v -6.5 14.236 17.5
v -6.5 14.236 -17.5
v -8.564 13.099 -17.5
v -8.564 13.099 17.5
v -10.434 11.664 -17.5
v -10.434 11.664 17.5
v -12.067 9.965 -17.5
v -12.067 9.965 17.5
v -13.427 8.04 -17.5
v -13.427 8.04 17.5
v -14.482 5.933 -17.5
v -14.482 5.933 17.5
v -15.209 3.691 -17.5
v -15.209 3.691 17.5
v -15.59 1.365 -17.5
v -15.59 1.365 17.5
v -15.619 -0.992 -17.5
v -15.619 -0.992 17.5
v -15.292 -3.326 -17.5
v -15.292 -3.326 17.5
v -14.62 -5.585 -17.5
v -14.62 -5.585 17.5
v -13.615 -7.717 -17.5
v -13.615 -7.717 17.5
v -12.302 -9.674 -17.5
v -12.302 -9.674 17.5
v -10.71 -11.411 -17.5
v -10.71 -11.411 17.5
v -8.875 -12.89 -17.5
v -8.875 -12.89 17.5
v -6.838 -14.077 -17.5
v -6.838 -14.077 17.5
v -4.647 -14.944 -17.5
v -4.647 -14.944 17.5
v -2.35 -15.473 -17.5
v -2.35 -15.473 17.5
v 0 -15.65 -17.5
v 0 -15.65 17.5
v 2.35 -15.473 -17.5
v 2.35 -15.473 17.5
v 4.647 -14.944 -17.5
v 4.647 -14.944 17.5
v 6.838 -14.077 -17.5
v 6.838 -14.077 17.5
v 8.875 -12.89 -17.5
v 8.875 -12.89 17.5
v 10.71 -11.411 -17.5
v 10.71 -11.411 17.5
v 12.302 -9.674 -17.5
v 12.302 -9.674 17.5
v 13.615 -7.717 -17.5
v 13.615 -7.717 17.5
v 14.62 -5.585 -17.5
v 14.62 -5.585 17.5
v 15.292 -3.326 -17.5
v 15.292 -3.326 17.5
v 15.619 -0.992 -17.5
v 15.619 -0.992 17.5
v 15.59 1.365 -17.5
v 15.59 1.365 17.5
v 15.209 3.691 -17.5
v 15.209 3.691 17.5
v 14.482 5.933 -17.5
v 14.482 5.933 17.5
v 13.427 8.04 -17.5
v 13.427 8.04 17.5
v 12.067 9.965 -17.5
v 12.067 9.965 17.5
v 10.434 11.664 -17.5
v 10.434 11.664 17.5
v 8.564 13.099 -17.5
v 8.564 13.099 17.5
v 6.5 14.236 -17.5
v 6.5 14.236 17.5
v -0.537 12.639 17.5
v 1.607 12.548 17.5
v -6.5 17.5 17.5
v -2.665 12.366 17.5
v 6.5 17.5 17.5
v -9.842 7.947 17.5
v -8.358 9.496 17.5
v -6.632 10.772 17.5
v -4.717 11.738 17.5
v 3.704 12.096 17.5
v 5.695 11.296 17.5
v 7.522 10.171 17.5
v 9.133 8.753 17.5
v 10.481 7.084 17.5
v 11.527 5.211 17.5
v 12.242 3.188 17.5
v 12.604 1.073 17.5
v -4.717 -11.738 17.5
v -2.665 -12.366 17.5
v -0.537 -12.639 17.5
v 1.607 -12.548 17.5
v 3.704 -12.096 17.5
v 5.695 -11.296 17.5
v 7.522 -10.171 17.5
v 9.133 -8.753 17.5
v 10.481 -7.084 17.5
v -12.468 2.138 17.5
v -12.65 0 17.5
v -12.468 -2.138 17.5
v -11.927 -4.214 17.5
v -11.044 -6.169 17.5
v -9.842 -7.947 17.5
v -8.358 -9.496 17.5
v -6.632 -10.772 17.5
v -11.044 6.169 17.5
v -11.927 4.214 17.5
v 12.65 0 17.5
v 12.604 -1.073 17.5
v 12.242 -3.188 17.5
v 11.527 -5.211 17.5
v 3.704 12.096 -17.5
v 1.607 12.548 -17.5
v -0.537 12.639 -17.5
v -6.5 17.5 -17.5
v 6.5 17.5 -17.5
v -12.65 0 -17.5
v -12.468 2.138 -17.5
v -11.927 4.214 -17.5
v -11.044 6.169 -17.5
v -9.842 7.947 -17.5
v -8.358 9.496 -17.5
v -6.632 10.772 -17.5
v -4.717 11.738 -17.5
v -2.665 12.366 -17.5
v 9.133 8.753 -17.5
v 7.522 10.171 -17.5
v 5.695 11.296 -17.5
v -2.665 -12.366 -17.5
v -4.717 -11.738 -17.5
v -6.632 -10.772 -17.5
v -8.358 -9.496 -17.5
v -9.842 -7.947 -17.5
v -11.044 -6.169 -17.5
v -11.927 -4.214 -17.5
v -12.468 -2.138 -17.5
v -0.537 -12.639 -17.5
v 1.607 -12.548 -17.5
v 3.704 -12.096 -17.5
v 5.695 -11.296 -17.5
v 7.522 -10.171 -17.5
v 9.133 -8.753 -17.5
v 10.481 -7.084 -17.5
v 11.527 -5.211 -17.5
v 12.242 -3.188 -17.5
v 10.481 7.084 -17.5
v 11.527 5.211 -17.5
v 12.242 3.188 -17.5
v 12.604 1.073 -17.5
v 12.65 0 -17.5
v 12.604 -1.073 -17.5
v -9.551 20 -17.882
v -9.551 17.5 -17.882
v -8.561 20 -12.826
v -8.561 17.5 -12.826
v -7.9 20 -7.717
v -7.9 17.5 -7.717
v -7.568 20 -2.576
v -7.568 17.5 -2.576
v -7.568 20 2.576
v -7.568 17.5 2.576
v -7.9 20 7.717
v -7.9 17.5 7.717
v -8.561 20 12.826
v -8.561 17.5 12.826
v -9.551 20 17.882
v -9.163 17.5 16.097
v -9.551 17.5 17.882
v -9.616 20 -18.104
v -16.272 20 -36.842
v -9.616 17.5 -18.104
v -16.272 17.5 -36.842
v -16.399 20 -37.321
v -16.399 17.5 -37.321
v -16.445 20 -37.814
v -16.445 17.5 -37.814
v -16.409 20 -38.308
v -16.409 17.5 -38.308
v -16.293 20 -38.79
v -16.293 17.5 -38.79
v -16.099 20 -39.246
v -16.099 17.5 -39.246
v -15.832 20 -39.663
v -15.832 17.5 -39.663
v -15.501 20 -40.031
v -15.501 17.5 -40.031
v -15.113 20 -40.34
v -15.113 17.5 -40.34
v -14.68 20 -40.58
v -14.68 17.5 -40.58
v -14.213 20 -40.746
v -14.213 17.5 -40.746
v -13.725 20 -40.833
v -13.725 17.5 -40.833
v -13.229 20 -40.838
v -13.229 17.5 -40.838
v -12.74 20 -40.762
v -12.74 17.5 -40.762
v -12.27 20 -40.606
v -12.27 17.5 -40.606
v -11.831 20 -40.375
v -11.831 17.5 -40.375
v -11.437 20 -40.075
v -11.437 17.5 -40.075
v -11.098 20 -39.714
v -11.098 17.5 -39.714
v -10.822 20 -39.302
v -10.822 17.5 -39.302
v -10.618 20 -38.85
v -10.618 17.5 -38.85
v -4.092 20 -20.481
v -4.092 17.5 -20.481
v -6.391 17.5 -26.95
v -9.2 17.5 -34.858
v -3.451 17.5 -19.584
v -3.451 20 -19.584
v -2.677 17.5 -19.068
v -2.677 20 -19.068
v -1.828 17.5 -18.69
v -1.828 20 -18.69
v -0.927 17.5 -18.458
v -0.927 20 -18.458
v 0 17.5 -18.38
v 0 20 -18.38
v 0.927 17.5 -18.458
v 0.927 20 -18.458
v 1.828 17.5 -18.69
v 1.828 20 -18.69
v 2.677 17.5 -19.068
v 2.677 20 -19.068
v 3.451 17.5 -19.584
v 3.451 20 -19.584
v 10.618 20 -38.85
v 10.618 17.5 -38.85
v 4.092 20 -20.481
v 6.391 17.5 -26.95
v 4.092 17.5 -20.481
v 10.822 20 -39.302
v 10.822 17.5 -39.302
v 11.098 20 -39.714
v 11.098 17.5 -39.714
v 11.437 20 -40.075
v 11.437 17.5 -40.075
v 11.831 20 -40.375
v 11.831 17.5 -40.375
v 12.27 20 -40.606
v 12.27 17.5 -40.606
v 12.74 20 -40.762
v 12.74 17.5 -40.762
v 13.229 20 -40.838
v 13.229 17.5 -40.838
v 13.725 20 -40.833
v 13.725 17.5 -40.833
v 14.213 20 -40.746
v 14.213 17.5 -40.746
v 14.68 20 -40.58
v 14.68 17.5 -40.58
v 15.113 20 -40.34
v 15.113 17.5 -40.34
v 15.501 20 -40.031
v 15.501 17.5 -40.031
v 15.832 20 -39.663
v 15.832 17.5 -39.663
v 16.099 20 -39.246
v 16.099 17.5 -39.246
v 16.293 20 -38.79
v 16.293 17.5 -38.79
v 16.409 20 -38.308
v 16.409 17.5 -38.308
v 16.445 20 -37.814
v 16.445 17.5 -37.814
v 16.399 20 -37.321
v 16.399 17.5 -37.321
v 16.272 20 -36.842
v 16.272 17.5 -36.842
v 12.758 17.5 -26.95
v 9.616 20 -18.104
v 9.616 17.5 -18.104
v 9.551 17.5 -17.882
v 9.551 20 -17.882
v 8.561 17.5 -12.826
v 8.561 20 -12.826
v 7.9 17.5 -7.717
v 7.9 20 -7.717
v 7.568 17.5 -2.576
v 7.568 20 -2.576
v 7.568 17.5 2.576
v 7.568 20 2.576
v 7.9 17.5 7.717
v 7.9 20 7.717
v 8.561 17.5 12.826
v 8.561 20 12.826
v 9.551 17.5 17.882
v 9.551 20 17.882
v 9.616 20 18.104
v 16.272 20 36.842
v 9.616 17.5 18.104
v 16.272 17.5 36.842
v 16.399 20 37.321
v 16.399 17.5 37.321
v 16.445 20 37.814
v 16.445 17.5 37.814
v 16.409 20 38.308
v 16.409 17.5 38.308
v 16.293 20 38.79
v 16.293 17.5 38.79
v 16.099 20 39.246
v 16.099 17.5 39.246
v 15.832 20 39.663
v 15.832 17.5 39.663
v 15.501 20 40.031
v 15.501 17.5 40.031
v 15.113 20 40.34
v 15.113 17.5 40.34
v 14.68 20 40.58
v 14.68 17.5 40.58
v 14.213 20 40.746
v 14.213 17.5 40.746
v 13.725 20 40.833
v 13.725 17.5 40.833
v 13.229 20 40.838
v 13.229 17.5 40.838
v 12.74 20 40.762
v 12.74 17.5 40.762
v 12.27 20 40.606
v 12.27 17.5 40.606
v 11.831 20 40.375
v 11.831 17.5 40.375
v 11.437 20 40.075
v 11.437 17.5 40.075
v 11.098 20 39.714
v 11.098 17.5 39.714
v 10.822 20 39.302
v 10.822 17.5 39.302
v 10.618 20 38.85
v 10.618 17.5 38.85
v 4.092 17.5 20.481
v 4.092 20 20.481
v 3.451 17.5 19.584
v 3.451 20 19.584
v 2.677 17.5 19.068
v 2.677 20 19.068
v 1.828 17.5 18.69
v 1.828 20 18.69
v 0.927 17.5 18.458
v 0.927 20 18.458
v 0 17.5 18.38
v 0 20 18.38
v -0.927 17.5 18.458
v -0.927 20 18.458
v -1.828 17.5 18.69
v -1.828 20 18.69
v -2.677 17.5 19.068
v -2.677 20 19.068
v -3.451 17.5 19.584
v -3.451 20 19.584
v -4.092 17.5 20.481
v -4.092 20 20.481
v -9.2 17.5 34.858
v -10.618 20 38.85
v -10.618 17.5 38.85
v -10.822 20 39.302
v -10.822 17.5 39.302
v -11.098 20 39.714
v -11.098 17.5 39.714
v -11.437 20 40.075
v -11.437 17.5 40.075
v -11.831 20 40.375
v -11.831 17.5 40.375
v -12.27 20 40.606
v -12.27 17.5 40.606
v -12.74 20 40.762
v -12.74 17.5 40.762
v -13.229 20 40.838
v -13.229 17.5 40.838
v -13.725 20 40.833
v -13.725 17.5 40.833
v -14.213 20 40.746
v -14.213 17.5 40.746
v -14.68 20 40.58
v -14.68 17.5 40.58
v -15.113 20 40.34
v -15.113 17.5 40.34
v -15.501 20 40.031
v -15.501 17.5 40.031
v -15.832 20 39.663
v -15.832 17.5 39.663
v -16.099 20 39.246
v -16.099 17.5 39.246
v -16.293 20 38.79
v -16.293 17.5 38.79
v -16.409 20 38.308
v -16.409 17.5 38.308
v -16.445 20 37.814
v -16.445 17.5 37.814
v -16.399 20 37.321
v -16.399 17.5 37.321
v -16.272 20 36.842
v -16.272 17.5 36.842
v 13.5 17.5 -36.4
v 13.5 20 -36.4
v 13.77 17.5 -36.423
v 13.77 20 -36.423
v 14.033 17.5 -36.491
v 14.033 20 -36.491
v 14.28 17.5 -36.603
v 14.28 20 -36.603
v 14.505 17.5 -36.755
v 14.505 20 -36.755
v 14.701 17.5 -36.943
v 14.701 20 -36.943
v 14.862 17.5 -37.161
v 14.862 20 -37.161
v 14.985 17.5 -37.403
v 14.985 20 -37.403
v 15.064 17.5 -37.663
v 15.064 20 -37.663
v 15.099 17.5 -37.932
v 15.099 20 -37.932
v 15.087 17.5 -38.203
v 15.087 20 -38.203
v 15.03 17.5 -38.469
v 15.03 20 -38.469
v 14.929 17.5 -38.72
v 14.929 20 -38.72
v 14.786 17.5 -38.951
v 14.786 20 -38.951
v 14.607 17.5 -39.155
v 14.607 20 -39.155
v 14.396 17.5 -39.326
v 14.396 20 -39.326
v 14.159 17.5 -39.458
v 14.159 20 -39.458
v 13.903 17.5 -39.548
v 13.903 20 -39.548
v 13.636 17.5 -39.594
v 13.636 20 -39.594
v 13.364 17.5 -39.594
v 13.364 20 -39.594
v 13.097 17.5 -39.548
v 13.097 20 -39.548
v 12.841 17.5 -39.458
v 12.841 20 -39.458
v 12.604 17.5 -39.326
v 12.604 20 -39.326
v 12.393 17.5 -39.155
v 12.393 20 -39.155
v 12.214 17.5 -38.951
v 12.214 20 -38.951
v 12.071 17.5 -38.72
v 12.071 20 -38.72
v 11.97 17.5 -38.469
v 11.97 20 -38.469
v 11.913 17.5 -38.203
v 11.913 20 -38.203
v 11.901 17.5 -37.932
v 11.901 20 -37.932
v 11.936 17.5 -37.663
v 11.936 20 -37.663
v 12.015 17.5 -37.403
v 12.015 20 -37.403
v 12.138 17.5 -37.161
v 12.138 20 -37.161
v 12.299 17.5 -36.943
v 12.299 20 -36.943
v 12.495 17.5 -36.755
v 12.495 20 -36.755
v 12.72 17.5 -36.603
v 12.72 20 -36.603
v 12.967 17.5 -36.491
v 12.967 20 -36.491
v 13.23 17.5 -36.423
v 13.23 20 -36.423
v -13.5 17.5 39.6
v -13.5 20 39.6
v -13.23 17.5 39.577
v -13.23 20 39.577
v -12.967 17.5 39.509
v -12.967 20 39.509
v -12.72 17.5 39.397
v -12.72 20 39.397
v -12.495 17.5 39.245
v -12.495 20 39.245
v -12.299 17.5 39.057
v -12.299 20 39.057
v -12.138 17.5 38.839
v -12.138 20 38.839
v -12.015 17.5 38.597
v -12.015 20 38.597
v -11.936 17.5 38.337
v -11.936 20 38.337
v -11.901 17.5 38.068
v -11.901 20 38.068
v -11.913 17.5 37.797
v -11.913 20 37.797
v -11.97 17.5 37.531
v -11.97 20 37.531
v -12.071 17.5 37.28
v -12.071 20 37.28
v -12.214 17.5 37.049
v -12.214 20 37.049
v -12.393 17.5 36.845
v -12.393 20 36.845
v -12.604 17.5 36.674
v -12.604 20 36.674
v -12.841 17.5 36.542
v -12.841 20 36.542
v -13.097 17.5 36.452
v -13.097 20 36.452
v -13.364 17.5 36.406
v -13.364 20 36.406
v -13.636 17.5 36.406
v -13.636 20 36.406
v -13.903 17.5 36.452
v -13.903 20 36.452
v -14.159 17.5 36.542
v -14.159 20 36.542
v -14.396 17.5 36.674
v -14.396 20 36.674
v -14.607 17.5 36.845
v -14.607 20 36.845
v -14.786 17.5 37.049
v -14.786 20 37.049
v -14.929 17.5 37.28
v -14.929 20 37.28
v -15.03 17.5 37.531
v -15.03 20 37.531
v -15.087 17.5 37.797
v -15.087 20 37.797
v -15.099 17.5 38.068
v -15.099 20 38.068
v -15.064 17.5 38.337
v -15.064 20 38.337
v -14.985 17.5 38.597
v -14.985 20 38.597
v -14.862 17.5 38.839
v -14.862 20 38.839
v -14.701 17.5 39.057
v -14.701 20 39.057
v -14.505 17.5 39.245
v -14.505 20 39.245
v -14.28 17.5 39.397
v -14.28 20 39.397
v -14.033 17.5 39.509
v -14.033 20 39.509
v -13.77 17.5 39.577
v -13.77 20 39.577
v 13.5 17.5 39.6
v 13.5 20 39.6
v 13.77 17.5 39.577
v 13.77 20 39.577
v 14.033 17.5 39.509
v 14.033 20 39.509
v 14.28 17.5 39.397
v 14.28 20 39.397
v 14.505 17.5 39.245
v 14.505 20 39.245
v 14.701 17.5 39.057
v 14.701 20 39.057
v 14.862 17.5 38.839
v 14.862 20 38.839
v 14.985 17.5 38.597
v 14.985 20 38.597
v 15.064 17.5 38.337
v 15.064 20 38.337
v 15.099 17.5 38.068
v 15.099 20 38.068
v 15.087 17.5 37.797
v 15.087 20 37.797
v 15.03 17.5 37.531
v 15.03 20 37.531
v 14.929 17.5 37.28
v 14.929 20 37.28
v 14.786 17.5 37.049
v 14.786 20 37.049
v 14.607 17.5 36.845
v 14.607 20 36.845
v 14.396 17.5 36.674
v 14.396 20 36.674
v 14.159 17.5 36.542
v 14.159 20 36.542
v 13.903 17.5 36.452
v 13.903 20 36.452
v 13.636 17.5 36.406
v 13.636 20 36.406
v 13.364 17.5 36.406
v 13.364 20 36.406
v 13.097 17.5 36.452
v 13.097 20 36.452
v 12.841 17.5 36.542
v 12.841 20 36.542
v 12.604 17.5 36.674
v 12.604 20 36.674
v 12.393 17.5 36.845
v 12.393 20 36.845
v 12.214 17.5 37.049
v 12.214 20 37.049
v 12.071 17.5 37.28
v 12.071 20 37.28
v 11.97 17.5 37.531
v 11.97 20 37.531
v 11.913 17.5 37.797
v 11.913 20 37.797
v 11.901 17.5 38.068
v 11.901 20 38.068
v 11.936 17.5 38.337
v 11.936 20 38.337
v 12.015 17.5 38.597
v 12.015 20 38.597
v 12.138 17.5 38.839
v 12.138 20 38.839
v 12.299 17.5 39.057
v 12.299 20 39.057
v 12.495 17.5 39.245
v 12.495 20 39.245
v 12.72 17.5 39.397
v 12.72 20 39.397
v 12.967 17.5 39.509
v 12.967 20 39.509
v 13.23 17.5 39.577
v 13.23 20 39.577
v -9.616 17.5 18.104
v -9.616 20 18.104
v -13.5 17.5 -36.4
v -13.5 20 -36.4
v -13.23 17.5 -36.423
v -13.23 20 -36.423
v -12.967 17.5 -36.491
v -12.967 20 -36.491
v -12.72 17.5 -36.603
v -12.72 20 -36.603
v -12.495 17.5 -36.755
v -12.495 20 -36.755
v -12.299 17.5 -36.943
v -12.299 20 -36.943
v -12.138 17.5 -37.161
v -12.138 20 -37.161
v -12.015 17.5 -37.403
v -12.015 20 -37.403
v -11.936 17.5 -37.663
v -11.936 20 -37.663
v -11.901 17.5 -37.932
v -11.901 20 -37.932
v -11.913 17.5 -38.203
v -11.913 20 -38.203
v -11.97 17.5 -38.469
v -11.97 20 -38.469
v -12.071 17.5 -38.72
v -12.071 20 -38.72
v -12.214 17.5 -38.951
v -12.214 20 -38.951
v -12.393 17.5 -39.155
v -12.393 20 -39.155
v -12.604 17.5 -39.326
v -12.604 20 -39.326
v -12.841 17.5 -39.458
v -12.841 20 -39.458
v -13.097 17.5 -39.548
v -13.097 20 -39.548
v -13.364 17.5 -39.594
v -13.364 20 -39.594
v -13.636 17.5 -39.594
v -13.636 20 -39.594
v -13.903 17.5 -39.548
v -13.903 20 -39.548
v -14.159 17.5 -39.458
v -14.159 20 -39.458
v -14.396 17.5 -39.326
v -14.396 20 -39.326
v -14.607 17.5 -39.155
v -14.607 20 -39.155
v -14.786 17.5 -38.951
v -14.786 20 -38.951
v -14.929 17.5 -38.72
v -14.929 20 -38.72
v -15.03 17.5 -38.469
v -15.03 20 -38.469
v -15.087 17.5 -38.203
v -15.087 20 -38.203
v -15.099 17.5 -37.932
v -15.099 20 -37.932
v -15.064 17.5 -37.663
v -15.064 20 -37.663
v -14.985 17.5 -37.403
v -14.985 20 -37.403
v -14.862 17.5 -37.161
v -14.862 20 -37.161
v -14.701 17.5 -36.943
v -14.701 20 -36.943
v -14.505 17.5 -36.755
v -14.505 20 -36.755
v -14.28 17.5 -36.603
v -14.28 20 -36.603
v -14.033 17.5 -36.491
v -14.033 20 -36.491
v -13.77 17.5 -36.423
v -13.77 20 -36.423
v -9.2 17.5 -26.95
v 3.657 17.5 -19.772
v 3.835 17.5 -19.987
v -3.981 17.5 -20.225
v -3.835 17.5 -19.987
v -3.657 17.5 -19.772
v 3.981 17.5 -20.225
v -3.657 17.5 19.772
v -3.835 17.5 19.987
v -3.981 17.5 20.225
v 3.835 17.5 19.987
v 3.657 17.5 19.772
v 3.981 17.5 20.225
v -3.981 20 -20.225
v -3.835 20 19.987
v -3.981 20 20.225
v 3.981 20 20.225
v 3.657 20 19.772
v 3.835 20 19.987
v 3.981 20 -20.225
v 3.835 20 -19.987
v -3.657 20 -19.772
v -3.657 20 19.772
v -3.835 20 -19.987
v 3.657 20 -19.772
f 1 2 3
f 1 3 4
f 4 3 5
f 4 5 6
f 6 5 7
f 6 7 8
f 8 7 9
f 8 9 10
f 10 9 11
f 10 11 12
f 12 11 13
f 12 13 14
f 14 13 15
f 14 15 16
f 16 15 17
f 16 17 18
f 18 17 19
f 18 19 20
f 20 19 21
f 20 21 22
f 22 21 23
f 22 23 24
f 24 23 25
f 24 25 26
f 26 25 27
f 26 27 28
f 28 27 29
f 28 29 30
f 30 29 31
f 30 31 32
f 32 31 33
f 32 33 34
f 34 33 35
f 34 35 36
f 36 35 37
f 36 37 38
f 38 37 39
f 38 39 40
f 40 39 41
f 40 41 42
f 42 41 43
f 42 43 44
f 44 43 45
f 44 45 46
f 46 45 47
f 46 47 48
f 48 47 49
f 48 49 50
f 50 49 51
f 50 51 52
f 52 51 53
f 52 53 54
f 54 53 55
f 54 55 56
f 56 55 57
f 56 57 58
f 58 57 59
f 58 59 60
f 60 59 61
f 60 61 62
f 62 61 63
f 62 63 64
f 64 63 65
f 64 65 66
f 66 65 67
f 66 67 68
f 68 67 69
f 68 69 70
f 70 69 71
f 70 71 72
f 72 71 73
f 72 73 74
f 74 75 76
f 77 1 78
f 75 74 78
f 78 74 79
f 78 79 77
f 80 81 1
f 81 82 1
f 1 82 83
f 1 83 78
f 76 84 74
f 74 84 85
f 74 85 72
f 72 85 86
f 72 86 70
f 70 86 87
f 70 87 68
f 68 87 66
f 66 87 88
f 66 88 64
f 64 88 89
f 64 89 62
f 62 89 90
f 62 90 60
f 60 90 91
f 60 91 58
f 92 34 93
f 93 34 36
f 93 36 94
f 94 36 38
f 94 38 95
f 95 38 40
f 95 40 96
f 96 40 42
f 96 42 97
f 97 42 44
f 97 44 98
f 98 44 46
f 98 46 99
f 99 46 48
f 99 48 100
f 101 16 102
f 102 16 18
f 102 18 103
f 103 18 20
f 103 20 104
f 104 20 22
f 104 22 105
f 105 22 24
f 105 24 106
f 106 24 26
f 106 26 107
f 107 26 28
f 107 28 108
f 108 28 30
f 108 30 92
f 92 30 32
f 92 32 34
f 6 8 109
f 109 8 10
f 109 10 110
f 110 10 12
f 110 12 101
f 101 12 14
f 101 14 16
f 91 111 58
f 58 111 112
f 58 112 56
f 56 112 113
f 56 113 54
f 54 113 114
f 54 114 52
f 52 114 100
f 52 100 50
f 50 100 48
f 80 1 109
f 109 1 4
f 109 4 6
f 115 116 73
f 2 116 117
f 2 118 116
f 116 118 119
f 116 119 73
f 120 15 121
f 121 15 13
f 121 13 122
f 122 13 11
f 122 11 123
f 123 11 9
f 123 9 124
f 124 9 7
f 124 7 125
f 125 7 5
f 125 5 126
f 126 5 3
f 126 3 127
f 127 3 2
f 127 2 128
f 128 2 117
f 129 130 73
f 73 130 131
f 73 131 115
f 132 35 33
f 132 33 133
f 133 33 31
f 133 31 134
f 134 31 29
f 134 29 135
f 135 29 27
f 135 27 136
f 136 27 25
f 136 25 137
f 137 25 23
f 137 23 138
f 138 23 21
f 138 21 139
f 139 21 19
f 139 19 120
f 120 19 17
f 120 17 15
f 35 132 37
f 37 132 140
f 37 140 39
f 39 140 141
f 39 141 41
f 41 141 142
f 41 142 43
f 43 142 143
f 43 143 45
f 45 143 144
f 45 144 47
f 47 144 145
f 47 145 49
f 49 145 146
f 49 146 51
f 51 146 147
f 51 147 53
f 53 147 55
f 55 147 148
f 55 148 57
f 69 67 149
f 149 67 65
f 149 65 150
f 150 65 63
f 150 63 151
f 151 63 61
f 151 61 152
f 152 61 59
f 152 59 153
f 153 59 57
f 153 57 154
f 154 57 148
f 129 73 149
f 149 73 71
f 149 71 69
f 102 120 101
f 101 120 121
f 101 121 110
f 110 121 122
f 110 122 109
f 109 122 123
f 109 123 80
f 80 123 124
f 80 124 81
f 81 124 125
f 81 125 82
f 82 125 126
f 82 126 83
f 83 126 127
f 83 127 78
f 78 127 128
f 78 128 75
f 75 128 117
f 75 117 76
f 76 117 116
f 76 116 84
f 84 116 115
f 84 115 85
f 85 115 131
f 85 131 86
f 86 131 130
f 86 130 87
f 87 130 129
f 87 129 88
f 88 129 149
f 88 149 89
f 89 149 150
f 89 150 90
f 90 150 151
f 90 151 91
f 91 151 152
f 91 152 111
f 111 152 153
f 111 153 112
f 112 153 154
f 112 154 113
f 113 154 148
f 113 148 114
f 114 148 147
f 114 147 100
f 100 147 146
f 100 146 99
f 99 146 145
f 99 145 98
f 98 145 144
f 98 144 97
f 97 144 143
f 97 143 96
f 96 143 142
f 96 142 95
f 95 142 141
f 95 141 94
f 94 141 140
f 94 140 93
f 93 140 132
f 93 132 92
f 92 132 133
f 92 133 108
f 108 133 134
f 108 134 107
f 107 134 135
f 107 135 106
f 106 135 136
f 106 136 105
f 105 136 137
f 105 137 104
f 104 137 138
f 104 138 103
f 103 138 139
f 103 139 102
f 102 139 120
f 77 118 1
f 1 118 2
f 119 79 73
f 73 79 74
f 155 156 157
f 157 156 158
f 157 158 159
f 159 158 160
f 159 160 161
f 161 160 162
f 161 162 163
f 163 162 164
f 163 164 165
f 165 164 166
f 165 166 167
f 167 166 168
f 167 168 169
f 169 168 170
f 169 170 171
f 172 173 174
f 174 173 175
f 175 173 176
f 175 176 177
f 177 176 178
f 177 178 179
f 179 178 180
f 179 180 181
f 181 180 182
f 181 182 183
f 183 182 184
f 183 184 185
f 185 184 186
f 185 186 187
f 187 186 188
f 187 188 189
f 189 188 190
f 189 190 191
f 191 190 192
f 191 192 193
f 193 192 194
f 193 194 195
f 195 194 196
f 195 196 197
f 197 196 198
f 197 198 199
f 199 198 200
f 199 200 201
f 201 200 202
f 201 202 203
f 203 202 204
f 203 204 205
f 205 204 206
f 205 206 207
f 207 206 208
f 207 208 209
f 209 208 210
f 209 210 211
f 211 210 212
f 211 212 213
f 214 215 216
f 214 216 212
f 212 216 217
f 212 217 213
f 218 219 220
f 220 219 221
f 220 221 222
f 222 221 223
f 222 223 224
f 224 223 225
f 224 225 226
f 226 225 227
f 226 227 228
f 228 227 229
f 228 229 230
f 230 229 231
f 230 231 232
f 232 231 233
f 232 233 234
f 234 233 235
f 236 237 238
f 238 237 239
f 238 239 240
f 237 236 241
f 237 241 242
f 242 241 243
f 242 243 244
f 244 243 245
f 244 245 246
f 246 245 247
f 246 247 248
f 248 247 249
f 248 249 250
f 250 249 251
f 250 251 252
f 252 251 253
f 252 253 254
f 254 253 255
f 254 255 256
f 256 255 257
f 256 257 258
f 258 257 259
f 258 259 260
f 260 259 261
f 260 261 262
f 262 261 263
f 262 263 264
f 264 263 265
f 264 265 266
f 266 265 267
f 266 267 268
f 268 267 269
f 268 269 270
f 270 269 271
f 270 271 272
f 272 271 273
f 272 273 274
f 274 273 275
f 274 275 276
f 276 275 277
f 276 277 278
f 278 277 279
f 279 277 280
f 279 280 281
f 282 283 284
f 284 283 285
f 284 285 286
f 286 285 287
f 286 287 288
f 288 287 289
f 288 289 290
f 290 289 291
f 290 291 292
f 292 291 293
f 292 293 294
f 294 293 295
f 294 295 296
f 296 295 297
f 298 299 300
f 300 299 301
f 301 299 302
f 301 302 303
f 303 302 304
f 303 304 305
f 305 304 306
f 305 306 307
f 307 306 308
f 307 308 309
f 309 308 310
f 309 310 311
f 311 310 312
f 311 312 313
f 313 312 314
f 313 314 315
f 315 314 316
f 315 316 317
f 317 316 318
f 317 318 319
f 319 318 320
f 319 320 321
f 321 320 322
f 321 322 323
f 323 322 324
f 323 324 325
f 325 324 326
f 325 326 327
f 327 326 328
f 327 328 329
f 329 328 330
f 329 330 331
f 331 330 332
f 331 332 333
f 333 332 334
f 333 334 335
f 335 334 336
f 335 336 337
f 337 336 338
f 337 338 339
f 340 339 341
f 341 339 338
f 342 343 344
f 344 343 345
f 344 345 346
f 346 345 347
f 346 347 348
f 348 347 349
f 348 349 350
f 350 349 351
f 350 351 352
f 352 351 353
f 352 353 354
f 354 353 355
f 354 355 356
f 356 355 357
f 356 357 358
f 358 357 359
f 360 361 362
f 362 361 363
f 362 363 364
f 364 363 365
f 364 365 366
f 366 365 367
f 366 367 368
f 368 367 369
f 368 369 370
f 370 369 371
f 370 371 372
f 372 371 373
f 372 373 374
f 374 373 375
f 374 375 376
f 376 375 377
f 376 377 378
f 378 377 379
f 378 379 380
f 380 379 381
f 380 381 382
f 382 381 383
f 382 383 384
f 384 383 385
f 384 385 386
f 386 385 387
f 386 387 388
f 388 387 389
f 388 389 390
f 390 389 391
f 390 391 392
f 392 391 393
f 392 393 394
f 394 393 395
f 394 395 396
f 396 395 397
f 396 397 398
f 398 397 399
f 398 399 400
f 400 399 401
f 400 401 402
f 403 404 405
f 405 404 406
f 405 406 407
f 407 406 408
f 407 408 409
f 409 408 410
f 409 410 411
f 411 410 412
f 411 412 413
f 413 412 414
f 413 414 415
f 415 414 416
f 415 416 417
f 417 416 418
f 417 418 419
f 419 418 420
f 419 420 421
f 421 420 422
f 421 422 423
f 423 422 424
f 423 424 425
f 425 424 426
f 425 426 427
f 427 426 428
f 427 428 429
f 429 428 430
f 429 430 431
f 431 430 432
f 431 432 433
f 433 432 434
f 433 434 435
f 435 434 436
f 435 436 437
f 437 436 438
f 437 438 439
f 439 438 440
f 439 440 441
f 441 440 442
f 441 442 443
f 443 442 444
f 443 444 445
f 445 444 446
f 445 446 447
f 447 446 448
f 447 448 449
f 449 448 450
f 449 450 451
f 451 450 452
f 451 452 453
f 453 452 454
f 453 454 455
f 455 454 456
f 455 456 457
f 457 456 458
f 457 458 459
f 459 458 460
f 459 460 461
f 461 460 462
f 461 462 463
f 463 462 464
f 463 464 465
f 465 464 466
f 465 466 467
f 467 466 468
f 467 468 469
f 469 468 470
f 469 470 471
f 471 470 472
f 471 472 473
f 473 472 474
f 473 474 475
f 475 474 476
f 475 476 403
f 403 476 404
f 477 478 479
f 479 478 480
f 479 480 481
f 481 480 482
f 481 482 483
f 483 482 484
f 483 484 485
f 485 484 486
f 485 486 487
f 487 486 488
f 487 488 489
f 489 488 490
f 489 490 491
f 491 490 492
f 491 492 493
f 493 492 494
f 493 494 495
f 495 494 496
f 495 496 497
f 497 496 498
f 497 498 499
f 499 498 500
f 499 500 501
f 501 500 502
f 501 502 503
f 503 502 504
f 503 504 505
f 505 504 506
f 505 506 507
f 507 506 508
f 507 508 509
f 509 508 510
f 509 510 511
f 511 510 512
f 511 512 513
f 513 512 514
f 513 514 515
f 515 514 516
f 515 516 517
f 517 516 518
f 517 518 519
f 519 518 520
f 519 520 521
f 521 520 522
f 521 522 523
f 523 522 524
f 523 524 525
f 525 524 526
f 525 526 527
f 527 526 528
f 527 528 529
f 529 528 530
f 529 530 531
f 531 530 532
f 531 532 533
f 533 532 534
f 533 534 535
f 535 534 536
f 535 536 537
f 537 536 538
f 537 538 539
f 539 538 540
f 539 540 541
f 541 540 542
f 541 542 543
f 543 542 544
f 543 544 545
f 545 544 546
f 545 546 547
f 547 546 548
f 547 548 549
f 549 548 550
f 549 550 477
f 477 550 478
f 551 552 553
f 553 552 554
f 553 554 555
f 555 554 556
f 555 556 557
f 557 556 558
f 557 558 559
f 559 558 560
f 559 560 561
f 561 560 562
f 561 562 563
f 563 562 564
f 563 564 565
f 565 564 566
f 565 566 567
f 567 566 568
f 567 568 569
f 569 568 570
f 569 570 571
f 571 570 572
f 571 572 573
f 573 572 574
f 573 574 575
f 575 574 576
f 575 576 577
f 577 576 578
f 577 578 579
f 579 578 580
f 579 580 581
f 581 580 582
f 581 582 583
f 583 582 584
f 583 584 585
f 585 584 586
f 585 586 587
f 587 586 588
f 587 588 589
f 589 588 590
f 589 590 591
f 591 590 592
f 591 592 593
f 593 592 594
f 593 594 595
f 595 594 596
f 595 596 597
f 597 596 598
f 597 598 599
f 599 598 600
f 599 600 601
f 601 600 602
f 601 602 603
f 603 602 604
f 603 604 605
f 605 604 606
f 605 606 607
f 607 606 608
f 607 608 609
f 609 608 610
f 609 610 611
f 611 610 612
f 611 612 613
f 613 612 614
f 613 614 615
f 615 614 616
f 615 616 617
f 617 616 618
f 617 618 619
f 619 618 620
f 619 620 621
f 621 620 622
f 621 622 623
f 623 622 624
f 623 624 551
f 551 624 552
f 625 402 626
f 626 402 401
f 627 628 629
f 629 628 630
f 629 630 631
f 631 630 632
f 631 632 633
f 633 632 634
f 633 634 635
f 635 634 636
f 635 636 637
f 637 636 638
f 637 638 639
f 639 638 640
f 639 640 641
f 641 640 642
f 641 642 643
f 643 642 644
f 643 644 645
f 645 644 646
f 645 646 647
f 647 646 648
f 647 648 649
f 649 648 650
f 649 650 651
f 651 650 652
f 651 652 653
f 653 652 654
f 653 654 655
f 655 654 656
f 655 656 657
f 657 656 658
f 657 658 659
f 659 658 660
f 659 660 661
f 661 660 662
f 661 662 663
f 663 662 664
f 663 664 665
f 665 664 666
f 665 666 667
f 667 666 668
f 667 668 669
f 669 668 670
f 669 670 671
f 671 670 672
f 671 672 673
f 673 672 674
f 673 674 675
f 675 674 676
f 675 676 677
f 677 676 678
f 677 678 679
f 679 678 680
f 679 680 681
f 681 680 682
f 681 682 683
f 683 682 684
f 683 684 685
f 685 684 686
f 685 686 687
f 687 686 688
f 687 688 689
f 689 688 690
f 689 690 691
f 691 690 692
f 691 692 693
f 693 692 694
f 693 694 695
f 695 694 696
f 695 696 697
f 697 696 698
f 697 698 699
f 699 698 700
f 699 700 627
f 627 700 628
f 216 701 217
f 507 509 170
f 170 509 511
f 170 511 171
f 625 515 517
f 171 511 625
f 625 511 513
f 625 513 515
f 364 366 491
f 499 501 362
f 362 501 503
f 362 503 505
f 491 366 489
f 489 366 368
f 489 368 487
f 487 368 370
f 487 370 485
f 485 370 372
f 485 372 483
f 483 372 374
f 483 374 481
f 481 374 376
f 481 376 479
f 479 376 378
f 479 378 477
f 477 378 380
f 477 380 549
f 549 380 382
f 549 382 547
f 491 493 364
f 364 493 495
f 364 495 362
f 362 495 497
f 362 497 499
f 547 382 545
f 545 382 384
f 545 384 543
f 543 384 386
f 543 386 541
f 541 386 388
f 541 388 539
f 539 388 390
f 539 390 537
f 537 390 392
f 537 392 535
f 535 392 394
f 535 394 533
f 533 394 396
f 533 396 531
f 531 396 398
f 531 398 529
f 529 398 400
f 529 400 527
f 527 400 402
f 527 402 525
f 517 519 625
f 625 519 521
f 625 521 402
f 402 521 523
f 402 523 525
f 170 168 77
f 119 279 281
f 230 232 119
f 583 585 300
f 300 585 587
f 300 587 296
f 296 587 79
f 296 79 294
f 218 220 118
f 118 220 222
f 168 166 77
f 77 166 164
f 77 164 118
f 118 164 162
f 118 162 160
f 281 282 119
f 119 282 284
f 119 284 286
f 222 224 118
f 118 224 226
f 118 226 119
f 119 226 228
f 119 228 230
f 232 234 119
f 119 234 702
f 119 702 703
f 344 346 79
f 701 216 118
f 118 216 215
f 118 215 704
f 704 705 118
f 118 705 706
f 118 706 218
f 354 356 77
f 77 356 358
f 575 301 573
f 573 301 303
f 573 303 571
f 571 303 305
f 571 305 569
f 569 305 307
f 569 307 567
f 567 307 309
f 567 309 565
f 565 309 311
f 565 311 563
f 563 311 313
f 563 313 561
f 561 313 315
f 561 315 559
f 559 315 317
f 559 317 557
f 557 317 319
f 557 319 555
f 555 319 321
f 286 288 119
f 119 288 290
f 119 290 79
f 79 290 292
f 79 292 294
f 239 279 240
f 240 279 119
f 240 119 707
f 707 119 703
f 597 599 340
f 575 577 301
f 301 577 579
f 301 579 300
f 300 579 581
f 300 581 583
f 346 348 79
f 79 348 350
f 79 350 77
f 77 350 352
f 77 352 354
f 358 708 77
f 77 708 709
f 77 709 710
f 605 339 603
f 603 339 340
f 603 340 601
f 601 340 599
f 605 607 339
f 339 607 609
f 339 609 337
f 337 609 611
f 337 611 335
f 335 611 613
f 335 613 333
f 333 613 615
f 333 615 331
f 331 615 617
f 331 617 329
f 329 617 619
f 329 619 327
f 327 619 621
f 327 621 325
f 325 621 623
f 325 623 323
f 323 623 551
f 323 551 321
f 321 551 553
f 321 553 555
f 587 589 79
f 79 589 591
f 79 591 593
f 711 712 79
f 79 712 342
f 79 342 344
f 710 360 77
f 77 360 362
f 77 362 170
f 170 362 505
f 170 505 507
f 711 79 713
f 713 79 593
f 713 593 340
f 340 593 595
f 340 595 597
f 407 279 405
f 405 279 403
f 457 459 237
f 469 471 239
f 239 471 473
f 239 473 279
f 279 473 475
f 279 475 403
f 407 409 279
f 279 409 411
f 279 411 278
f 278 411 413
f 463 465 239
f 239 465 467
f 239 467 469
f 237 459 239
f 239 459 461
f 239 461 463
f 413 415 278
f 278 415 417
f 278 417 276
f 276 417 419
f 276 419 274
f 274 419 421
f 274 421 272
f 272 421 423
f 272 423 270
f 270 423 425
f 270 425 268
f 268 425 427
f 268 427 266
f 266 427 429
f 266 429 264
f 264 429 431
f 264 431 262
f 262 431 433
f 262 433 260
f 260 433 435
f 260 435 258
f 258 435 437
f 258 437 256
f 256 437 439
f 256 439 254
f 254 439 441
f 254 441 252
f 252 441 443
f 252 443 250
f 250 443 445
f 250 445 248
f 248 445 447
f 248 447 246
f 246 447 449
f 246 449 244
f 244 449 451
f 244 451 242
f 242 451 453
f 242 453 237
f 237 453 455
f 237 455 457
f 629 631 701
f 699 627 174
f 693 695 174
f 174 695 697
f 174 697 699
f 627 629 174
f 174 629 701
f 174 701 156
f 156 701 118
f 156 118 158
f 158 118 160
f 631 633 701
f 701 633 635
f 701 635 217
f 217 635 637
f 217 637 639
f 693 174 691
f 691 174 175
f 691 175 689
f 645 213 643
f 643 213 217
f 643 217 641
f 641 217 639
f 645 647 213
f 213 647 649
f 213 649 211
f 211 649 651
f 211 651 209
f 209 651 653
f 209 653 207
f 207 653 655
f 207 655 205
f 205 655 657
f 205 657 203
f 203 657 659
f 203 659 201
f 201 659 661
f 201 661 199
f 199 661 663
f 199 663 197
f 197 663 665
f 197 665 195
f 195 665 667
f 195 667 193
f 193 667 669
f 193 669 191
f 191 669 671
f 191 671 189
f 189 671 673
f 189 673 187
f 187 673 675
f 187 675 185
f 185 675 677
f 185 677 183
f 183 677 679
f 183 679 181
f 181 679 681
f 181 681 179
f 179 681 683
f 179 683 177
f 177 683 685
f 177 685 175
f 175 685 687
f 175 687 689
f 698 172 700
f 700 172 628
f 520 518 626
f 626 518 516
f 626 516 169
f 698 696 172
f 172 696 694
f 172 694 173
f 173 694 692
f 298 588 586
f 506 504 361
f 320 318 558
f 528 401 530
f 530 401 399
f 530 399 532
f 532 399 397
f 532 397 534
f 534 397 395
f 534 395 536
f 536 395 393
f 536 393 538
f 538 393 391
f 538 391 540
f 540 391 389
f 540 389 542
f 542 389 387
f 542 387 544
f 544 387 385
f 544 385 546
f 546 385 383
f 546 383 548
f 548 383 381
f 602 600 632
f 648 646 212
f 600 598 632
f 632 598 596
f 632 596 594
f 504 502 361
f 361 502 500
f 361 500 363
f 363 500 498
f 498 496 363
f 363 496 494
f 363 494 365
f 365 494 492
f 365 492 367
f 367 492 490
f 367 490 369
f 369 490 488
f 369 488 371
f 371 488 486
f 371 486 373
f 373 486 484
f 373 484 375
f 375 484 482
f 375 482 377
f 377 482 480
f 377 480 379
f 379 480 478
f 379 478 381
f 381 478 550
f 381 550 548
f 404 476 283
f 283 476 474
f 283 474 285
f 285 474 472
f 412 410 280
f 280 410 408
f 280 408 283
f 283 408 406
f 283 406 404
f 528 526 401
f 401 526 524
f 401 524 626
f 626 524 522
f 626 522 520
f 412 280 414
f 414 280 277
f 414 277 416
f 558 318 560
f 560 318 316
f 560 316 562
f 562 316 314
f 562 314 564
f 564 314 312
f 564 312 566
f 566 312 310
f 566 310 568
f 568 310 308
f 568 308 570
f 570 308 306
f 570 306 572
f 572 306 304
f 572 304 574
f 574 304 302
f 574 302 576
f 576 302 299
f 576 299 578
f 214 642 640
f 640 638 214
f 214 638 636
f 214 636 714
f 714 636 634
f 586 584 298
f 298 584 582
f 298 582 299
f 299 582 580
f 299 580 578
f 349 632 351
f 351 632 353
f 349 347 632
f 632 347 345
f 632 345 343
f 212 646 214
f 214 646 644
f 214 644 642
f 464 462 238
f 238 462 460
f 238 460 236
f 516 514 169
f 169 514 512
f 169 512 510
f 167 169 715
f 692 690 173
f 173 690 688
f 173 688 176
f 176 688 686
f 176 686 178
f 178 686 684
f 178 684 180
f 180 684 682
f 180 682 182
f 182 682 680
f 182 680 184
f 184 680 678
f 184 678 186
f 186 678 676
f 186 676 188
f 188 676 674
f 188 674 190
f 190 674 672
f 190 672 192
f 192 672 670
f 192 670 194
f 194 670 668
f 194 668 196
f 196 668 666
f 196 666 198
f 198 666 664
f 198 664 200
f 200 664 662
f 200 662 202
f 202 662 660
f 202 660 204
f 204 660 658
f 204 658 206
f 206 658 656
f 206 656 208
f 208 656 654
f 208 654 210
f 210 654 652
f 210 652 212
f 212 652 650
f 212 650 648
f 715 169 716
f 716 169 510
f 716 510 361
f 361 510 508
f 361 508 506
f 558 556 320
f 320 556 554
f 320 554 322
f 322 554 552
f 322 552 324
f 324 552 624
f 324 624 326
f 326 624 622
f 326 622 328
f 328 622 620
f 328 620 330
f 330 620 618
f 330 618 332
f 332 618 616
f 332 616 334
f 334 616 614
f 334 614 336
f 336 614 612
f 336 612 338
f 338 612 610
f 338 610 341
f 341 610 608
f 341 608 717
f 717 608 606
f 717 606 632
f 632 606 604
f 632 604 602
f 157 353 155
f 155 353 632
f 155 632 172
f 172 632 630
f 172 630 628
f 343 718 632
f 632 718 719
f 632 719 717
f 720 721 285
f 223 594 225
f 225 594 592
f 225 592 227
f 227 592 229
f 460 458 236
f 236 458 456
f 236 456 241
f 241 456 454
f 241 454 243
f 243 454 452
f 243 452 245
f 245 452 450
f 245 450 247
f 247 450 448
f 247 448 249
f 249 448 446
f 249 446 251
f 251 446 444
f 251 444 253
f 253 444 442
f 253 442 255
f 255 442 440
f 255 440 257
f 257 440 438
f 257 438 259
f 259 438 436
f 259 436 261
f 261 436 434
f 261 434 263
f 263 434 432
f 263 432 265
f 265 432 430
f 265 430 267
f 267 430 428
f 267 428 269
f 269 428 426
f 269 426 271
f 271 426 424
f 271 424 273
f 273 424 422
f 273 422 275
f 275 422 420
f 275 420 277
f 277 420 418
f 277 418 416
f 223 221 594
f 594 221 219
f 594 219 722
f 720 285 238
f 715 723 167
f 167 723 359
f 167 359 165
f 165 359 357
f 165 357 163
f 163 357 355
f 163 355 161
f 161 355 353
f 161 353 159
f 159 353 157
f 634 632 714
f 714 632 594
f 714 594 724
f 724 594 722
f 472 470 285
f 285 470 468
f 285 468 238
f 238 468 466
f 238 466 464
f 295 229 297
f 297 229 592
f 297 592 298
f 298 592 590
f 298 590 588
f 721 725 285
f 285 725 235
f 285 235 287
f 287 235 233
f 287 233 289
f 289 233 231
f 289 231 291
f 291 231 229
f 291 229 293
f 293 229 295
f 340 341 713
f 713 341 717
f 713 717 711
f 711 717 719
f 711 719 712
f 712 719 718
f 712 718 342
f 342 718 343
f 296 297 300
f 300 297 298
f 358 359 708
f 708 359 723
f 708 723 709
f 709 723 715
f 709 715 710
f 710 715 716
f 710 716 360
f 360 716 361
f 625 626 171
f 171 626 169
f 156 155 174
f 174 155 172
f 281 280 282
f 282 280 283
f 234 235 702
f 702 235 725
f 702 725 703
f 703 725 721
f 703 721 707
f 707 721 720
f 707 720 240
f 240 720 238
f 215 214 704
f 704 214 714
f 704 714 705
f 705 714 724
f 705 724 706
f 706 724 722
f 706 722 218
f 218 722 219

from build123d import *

# Parameters (mm, degrees)
SKETCH1_R                = 15.65
SKETCH1_R_2              = 12.65
BOSS_EXTRUDE1_DEPTH      = 17.5
SKETCH5_R                = 1.6
BOSS_EXTRUDE4_DEPTH      = 2.5
FILLET1_R                = 2
BOSS_EXTRUDE5_REACH      = 57.116
BOSS_EXTRUDE5_END_RADIUS = 15.65
SKETCH6_W                = 13
SKETCH6_H                = 35


with BuildPart() as part:
    # Sketch1 → Boss-Extrude1 (new, symmetric)
    with BuildSketch(Plane.XY):
        Circle(SKETCH1_R)
        Circle(SKETCH1_R_2, mode=Mode.SUBTRACT)
    extrude(amount=BOSS_EXTRUDE1_DEPTH, both=True)



with BuildPart() as body_2:
    # Sketch5 → Boss-Extrude4 (new body)
    # profile 1 of 5: a face of its own
    with BuildSketch(Plane(origin=(0, 20, 0), x_dir=(1, 0, 0), z_dir=(0, 1, 0))):
        with BuildLine():
            Line((-9.576904887, -17.995704843), (-16.272205934, -36.84173742))
            ThreePointArc((-16.272205934, -36.84173742), (-14.449596204, -40.672937463), (-10.618396161, -38.850327734))
            Line((-10.618396161, -38.850327734), (-3.923095113, -20.004295157))
            Line((-3.923095113, -20.004295157), (0, -8.961508912))
            Line((0, -8.961508912), (3.923095113, -20.004295157))
            Line((3.923095113, -20.004295157), (10.618396161, -38.850327734))
            ThreePointArc((10.618396161, -38.850327734), (14.449596204, -40.672937463), (16.272205934, -36.84173742))
            Line((16.272205934, -36.84173742), (9.576904887, -17.995704843))
            Line((9.576904887, -17.995704843), (3.183693955, 0))
            Line((3.183693955, 0), (9.576904887, 17.995704843))
            Line((9.576904887, 17.995704843), (16.272205934, 36.84173742))
            ThreePointArc((16.272205934, 36.84173742), (14.449596204, 40.672937463), (10.618396161, 38.850327734))
            Line((10.618396161, 38.850327734), (3.923095113, 20.004295157))
            Line((3.923095113, 20.004295157), (0, 8.961508912))
            Line((0, 8.961508912), (-3.923095113, 20.004295157))
            Line((-3.923095113, 20.004295157), (-10.618396161, 38.850327734))
            ThreePointArc((-10.618396161, 38.850327734), (-14.449596204, 40.672937463), (-16.272205934, 36.84173742))
            Line((-16.272205934, 36.84173742), (-9.576904887, 17.995704843))
            Line((-9.576904887, 17.995704843), (-3.183693955, 0))
            Line((-3.183693955, 0), (-9.576904887, -17.995704843))
        make_face()
        with Locations(Location((13.5, -38, 0), (0, 0, 270))):
            Circle(SKETCH5_R, mode=Mode.SUBTRACT)
        with Locations(Location((-13.5, -38, 0), (0, 0, 270))):
            Circle(SKETCH5_R, mode=Mode.SUBTRACT)
        with Locations(Location((13.5, 38, 0), (0, 0, 270))):
            Circle(SKETCH5_R, mode=Mode.SUBTRACT)
        with Locations(Location((-13.5, 38, 0), (0, 0, 270))):
            Circle(SKETCH5_R, mode=Mode.SUBTRACT)
    # profile 2 of 5: a face of its own
    with BuildSketch(Plane(origin=(0, 20, 0), x_dir=(1, 0, 0), z_dir=(0, 1, 0))):
        with BuildLine():
            Line((-9.576904887, 17.995704843), (-3.183693955, 0))
            Line((-3.183693955, 0), (-9.576904887, -17.995704843))
            ThreePointArc((-9.576904887, -17.995704843), (-7.526597684, 0), (-9.576904887, 17.995704843))
        make_face()
    # profile 3 of 5: a face of its own
    with BuildSketch(Plane(origin=(0, 20, 0), x_dir=(1, 0, 0), z_dir=(0, 1, 0))):
        with BuildLine():
            ThreePointArc((9.576904887, 17.995704843), (7.526597684, 0), (9.576904887, -17.995704843))
            Line((9.576904887, -17.995704843), (3.183693955, 0))
            Line((3.183693955, 0), (9.576904887, 17.995704843))
        make_face()
    # profile 4 of 5: a face of its own
    with BuildSketch(Plane(origin=(0, 20, 0), x_dir=(1, 0, 0), z_dir=(0, 1, 0))):
        with BuildLine():
            Line((-3.923095113, -20.004295157), (0, -8.961508912))
            Line((0, -8.961508912), (3.923095113, -20.004295157))
            ThreePointArc((3.923095113, -20.004295157), (0, -18.380084852), (-3.923095113, -20.004295157))
        make_face()
    # profile 5 of 5: a face of its own
    with BuildSketch(Plane(origin=(0, 20, 0), x_dir=(1, 0, 0), z_dir=(0, 1, 0))):
        with BuildLine():
            ThreePointArc((-3.923095113, 20.004295157), (0, 18.380084852), (3.923095113, 20.004295157))
            Line((3.923095113, 20.004295157), (0, 8.961508912))
            Line((0, 8.961508912), (-3.923095113, 20.004295157))
        make_face()
    extrude(amount=-BOSS_EXTRUDE4_DEPTH)

    # Fillet1
    fillet1_edges = [body_2.edges().sort_by_distance(p)[0] for p in [
        (-9.576904887, 18.75, -17.995704843),
        (-3.923095113, 18.75, -20.004295157),
        (3.923095113, 18.75, -20.004295157),
        (9.576904887, 18.75, -17.995704843),
        (9.576904887, 18.75, 17.995704843),
        (3.923095113, 18.75, 20.004295157),
        (-3.923095113, 18.75, 20.004295157),
        (-9.576904887, 18.75, 17.995704843),
    ]]
    fillet(fillet1_edges, radius=FILLET1_R)


with BuildPart() as part_1:
    add(part.part)

    add(body_2.part)  # Boss-Extrude5 merges body 2
    # Boss-Extrude5: up to this cylinder (the profile starts outside it)
    boss_extrude5_end = Plane(origin=(0, 0, 0), z_dir=(0, 0, -1)) * Cylinder(BOSS_EXTRUDE5_END_RADIUS, 146.532, mode=Mode.PRIVATE)
    # Sketch6 → Boss-Extrude5 (add, up to the surface)
    with BuildSketch(Plane.XZ.offset(-17.5), mode=Mode.PRIVATE) as boss_extrude5_sk1:
        Rectangle(SKETCH6_W, SKETCH6_H)
    boss_extrude5_tool1 = extrude(boss_extrude5_sk1.sketch, amount=BOSS_EXTRUDE5_REACH, mode=Mode.PRIVATE) - boss_extrude5_end
    add(boss_extrude5_tool1.solids().sort_by_distance((0, 17.5, 0))[0])


solid = part_1.part
